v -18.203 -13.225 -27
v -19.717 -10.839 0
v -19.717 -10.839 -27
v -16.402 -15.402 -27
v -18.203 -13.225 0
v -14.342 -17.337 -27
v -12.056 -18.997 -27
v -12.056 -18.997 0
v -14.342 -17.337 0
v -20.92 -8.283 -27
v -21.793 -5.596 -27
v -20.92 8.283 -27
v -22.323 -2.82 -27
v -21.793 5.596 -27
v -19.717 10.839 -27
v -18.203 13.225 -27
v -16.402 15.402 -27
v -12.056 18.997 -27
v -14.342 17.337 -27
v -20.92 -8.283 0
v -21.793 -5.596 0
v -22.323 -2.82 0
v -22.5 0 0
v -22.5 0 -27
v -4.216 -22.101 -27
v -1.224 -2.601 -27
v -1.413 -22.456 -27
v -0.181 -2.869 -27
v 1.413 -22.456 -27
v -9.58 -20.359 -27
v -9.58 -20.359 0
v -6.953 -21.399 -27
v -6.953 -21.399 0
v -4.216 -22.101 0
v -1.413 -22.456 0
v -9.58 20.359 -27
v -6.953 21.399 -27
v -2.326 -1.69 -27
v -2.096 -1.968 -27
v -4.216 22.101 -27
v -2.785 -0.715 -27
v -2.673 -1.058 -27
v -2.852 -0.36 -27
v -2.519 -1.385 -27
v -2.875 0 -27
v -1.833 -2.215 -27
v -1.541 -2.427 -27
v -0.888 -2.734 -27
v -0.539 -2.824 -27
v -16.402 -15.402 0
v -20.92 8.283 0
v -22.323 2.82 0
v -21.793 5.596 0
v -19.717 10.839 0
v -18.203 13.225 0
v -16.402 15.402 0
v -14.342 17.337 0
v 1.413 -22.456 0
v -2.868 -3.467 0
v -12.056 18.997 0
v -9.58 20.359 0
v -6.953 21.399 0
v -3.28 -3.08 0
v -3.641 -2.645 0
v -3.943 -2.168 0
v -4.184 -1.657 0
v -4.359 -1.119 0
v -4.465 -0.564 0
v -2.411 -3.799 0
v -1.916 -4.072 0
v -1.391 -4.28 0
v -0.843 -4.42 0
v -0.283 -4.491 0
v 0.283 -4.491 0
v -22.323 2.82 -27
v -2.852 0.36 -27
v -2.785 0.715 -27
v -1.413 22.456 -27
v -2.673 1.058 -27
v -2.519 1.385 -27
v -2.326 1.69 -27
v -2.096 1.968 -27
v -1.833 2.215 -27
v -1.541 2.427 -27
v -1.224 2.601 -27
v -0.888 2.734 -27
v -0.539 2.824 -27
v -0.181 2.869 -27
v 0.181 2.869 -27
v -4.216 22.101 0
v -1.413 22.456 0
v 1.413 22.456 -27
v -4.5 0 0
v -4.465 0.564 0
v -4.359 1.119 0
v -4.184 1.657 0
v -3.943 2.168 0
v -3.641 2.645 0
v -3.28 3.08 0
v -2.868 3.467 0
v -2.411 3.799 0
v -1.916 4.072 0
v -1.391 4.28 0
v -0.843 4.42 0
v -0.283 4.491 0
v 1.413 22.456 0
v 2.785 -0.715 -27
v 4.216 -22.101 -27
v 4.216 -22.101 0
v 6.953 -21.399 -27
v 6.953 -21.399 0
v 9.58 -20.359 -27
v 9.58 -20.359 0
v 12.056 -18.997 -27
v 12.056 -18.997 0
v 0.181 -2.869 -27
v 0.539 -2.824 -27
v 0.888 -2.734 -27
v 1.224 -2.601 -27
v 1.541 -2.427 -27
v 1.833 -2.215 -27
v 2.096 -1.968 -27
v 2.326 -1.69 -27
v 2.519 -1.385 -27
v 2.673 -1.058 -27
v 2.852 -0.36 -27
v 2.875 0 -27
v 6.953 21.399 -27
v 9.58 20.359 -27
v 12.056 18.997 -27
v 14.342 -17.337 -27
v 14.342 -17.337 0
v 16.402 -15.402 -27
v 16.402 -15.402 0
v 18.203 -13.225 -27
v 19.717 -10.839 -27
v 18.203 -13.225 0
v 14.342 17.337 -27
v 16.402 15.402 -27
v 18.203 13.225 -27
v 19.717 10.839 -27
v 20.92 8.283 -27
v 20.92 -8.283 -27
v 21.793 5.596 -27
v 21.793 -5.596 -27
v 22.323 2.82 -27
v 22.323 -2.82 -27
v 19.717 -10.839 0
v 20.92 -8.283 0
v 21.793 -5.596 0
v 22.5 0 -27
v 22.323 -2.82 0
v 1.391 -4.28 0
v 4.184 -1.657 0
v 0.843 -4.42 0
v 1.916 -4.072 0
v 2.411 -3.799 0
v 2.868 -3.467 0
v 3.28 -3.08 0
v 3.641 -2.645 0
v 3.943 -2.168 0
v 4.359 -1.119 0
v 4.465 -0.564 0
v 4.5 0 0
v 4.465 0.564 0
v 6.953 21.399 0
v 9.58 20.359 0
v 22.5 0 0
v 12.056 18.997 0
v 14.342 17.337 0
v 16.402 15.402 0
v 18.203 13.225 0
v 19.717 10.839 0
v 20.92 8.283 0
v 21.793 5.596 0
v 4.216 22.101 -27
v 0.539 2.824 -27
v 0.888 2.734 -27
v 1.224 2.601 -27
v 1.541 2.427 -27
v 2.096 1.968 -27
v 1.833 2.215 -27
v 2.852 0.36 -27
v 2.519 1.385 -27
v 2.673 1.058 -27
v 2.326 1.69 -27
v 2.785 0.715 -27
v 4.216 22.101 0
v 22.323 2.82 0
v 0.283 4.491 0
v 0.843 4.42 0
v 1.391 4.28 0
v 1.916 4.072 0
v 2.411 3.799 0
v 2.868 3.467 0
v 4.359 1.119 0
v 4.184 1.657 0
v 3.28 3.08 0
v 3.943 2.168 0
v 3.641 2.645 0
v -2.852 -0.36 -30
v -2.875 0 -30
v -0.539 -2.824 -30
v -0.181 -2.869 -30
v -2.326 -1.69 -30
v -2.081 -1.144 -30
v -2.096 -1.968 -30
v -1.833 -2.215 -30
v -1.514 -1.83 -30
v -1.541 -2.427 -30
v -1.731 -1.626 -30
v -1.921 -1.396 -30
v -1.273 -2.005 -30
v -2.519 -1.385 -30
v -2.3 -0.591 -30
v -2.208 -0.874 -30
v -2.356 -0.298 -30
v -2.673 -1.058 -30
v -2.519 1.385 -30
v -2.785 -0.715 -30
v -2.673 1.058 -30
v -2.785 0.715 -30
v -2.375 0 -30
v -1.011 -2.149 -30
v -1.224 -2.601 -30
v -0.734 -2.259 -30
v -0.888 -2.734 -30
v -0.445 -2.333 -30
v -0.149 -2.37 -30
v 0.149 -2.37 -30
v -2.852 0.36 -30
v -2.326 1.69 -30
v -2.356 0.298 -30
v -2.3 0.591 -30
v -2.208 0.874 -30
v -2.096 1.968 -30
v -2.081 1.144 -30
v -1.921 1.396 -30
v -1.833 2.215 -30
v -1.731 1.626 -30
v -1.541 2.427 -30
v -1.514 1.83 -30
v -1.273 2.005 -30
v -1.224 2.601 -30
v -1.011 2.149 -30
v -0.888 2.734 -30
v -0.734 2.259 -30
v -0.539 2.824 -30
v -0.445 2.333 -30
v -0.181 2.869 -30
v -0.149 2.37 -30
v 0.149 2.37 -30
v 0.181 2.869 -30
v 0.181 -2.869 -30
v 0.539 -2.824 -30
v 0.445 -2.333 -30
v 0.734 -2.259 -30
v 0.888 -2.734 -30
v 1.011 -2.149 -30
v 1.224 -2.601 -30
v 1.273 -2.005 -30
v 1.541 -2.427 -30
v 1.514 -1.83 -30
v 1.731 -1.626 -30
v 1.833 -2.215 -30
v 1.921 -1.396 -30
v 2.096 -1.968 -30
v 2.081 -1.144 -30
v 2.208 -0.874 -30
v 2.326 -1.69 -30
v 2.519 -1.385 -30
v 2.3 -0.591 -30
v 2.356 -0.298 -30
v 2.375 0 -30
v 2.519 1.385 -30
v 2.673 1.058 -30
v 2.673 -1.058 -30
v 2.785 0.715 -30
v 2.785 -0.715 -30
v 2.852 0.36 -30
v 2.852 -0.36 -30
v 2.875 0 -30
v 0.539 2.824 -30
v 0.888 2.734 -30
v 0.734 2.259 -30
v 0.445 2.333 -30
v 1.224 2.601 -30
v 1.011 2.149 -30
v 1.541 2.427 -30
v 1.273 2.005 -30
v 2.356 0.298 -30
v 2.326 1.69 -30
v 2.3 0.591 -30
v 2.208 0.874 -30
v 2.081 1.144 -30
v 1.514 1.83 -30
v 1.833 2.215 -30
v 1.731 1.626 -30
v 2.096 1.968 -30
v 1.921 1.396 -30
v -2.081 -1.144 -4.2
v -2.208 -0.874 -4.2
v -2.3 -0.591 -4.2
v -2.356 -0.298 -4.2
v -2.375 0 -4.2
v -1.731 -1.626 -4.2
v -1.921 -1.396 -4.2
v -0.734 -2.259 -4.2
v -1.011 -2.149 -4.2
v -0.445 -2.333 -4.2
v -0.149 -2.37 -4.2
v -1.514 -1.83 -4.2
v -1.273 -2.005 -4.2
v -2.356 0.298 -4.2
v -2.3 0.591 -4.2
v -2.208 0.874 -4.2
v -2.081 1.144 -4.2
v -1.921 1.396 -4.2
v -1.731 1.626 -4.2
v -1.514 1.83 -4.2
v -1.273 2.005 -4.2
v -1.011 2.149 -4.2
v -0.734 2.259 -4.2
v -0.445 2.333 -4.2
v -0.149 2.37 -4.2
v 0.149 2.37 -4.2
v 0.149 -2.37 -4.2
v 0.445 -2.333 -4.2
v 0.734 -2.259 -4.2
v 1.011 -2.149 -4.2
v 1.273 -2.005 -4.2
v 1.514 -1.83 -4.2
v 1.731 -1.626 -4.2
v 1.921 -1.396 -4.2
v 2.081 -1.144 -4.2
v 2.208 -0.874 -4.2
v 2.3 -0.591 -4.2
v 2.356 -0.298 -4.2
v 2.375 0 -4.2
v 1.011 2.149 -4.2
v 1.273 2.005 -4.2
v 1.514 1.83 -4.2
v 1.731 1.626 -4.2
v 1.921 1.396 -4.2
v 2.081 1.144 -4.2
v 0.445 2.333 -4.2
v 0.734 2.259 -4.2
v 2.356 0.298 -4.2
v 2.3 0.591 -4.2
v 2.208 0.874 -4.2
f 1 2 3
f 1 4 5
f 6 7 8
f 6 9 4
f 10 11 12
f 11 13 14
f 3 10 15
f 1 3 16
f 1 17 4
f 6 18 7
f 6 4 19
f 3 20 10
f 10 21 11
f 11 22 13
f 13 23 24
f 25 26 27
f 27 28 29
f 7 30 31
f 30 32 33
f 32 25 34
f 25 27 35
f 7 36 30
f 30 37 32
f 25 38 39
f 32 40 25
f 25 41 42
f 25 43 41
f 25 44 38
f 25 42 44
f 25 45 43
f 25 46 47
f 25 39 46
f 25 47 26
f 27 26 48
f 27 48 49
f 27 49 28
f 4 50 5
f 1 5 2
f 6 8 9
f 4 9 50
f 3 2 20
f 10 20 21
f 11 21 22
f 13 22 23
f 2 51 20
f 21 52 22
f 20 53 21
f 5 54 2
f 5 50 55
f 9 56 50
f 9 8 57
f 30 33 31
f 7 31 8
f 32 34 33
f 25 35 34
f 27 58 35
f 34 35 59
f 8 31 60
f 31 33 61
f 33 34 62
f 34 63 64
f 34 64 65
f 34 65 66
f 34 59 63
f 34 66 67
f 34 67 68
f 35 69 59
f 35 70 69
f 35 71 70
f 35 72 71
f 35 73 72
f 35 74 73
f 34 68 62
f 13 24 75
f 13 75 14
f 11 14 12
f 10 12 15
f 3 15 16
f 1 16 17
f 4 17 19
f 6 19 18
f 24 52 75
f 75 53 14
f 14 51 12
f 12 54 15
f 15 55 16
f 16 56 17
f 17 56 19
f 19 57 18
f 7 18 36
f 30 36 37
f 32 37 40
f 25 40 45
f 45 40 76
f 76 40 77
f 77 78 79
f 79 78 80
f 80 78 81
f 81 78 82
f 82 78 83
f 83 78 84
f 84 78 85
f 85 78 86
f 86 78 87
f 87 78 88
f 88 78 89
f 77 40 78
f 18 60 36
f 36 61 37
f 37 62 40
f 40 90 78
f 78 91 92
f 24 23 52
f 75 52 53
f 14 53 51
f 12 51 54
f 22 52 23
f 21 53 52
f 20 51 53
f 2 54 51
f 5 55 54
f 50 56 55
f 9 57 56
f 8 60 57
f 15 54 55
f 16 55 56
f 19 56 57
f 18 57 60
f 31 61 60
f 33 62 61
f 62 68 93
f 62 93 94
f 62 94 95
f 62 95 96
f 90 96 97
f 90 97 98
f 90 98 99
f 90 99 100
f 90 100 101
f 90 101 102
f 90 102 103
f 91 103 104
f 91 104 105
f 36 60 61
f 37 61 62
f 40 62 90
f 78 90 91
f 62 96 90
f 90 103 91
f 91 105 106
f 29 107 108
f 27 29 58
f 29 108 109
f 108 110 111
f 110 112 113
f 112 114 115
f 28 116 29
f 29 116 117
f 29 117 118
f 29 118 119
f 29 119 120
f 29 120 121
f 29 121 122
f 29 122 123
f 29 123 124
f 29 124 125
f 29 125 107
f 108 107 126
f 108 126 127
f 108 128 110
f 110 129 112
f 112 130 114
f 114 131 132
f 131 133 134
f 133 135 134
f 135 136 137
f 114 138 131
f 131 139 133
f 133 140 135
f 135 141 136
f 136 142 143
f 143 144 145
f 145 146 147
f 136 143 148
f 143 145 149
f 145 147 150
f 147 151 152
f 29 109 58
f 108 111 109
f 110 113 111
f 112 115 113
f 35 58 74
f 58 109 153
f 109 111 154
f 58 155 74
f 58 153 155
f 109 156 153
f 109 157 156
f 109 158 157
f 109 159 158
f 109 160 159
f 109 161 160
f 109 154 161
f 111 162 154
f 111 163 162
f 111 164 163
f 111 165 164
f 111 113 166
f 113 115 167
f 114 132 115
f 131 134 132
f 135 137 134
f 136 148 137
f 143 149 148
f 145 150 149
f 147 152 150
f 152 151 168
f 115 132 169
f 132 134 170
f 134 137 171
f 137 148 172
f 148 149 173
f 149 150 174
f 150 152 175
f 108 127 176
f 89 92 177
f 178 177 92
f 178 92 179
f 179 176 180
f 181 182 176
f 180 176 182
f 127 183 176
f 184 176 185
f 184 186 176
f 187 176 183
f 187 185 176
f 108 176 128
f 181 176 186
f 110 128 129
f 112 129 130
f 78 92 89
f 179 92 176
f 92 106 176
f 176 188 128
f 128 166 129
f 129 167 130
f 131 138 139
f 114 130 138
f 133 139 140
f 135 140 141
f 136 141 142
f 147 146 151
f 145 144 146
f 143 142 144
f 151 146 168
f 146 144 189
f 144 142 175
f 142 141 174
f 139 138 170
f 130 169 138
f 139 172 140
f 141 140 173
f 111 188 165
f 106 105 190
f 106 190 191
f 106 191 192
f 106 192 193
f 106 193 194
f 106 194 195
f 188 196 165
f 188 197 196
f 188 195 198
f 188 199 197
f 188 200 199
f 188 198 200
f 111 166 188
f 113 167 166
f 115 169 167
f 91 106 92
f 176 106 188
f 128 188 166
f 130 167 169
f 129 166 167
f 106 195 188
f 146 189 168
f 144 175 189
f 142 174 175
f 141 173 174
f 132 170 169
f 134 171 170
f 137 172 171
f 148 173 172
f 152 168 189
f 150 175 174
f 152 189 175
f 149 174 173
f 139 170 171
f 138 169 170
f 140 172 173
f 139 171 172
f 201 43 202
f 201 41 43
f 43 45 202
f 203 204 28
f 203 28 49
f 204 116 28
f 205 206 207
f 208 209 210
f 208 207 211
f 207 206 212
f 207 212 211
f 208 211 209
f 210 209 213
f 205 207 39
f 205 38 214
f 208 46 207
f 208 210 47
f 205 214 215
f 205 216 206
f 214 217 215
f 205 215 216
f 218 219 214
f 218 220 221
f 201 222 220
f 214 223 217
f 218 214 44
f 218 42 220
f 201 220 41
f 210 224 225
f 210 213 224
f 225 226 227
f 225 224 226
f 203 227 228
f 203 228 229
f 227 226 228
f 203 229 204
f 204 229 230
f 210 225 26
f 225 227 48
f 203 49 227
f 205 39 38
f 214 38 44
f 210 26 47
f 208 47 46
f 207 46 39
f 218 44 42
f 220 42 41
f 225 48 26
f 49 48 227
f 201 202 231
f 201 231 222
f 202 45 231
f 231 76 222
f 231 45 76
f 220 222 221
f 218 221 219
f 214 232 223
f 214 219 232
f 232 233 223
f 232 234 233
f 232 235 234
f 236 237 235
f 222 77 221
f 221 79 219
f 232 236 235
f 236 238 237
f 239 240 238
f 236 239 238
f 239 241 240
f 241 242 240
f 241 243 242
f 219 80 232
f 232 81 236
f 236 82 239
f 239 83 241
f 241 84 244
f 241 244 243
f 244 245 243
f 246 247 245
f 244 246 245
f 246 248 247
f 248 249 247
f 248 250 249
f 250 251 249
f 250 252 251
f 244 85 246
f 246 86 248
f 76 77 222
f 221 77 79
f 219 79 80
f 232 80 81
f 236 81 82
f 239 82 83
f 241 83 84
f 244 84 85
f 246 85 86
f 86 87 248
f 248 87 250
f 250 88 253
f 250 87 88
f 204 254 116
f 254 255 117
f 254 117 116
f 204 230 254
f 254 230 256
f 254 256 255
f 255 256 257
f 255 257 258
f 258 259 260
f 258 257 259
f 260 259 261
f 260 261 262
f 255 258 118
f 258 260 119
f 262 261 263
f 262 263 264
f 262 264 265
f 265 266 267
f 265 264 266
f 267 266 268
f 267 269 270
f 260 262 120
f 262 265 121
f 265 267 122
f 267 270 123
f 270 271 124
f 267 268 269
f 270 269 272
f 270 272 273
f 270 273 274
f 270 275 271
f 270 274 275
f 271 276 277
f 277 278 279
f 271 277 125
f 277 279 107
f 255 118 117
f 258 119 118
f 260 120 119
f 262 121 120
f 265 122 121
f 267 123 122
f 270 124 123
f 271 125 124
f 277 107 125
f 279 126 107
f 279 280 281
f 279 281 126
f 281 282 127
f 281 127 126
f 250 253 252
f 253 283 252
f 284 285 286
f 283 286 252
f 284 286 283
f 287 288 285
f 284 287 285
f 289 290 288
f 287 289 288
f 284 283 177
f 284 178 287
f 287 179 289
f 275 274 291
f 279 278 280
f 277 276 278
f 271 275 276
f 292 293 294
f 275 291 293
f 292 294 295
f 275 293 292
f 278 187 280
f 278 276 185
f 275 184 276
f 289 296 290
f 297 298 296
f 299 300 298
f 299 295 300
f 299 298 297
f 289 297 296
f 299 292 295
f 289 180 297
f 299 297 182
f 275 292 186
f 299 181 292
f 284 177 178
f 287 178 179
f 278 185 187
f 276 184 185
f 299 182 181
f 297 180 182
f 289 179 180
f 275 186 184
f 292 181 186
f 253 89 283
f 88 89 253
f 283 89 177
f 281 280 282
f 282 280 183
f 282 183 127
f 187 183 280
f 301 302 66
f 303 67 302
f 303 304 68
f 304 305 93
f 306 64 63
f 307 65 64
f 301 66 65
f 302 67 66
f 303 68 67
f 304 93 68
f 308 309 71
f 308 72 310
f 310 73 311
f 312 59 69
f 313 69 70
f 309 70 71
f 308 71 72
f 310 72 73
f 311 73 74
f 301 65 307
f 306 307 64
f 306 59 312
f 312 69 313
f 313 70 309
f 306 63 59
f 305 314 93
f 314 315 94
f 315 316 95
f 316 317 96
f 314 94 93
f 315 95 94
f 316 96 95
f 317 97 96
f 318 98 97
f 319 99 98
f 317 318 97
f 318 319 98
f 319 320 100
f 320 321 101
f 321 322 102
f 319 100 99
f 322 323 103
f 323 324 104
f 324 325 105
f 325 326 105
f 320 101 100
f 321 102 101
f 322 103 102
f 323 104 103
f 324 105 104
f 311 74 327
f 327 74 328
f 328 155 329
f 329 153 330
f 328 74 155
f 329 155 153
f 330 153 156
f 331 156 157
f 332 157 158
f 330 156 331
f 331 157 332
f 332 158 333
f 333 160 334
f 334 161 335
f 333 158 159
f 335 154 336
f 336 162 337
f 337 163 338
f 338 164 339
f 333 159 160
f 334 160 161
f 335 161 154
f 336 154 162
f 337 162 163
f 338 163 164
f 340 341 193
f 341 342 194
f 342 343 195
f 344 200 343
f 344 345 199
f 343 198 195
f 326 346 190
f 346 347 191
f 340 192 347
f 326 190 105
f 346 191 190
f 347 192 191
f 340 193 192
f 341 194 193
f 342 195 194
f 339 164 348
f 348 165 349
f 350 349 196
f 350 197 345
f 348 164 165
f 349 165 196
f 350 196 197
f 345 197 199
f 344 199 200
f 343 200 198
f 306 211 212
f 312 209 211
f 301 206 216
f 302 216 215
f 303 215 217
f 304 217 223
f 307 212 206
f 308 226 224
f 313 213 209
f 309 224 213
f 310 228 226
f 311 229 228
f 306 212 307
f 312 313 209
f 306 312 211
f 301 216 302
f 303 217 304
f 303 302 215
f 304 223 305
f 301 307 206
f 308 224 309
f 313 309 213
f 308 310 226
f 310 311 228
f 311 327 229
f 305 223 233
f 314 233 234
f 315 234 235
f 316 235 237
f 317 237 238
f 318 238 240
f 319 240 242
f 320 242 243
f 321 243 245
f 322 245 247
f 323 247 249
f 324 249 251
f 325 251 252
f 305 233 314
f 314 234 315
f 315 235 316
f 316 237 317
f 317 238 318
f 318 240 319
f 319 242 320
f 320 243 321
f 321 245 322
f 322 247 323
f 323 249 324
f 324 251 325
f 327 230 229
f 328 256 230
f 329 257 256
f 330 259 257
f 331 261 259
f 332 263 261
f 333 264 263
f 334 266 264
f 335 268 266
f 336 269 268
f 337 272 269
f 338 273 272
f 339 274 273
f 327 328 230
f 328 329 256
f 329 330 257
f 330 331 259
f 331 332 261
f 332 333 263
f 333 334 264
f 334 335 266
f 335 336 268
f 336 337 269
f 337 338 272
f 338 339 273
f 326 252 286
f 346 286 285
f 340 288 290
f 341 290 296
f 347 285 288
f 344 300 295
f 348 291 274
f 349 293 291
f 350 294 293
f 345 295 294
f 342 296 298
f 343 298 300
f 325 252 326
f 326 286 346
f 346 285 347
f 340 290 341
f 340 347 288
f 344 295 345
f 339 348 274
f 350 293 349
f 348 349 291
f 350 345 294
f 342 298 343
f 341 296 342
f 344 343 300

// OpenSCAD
$fn = 50;


difference() {
	union() {
		translate(v = [0, 0, -27.0000000000]) {
			cylinder(h = 27, r = 22.5000000000);
		}
		#translate(v = [0, 0, -30.0000000000]) {
			cylinder(h = 30, r = 2.8750000000);
		}
	}
	union() {
		translate(v = [0, 0, 0]) {
			rotate(a = [0, 0, 0]) {
				difference() {
					union() {
						translate(v = [0, 0, -30.0000000000]) {
							cylinder(h = 30, r = 2.2500000000);
						}
						translate(v = [0, 0, -4.2000000000]) {
							cylinder(h = 4.2000000000, r1 = 2.3750000000, r2 = 4.5000000000);
						}
						translate(v = [0, 0, -30.0000000000]) {
							cylinder(h = 30, r = 2.3750000000);
						}
						translate(v = [0, 0, -30.0000000000]) {
							cylinder(h = 30, r = 2.2500000000);
						}
					}
					union();
				}
			}
		}
	}
}
